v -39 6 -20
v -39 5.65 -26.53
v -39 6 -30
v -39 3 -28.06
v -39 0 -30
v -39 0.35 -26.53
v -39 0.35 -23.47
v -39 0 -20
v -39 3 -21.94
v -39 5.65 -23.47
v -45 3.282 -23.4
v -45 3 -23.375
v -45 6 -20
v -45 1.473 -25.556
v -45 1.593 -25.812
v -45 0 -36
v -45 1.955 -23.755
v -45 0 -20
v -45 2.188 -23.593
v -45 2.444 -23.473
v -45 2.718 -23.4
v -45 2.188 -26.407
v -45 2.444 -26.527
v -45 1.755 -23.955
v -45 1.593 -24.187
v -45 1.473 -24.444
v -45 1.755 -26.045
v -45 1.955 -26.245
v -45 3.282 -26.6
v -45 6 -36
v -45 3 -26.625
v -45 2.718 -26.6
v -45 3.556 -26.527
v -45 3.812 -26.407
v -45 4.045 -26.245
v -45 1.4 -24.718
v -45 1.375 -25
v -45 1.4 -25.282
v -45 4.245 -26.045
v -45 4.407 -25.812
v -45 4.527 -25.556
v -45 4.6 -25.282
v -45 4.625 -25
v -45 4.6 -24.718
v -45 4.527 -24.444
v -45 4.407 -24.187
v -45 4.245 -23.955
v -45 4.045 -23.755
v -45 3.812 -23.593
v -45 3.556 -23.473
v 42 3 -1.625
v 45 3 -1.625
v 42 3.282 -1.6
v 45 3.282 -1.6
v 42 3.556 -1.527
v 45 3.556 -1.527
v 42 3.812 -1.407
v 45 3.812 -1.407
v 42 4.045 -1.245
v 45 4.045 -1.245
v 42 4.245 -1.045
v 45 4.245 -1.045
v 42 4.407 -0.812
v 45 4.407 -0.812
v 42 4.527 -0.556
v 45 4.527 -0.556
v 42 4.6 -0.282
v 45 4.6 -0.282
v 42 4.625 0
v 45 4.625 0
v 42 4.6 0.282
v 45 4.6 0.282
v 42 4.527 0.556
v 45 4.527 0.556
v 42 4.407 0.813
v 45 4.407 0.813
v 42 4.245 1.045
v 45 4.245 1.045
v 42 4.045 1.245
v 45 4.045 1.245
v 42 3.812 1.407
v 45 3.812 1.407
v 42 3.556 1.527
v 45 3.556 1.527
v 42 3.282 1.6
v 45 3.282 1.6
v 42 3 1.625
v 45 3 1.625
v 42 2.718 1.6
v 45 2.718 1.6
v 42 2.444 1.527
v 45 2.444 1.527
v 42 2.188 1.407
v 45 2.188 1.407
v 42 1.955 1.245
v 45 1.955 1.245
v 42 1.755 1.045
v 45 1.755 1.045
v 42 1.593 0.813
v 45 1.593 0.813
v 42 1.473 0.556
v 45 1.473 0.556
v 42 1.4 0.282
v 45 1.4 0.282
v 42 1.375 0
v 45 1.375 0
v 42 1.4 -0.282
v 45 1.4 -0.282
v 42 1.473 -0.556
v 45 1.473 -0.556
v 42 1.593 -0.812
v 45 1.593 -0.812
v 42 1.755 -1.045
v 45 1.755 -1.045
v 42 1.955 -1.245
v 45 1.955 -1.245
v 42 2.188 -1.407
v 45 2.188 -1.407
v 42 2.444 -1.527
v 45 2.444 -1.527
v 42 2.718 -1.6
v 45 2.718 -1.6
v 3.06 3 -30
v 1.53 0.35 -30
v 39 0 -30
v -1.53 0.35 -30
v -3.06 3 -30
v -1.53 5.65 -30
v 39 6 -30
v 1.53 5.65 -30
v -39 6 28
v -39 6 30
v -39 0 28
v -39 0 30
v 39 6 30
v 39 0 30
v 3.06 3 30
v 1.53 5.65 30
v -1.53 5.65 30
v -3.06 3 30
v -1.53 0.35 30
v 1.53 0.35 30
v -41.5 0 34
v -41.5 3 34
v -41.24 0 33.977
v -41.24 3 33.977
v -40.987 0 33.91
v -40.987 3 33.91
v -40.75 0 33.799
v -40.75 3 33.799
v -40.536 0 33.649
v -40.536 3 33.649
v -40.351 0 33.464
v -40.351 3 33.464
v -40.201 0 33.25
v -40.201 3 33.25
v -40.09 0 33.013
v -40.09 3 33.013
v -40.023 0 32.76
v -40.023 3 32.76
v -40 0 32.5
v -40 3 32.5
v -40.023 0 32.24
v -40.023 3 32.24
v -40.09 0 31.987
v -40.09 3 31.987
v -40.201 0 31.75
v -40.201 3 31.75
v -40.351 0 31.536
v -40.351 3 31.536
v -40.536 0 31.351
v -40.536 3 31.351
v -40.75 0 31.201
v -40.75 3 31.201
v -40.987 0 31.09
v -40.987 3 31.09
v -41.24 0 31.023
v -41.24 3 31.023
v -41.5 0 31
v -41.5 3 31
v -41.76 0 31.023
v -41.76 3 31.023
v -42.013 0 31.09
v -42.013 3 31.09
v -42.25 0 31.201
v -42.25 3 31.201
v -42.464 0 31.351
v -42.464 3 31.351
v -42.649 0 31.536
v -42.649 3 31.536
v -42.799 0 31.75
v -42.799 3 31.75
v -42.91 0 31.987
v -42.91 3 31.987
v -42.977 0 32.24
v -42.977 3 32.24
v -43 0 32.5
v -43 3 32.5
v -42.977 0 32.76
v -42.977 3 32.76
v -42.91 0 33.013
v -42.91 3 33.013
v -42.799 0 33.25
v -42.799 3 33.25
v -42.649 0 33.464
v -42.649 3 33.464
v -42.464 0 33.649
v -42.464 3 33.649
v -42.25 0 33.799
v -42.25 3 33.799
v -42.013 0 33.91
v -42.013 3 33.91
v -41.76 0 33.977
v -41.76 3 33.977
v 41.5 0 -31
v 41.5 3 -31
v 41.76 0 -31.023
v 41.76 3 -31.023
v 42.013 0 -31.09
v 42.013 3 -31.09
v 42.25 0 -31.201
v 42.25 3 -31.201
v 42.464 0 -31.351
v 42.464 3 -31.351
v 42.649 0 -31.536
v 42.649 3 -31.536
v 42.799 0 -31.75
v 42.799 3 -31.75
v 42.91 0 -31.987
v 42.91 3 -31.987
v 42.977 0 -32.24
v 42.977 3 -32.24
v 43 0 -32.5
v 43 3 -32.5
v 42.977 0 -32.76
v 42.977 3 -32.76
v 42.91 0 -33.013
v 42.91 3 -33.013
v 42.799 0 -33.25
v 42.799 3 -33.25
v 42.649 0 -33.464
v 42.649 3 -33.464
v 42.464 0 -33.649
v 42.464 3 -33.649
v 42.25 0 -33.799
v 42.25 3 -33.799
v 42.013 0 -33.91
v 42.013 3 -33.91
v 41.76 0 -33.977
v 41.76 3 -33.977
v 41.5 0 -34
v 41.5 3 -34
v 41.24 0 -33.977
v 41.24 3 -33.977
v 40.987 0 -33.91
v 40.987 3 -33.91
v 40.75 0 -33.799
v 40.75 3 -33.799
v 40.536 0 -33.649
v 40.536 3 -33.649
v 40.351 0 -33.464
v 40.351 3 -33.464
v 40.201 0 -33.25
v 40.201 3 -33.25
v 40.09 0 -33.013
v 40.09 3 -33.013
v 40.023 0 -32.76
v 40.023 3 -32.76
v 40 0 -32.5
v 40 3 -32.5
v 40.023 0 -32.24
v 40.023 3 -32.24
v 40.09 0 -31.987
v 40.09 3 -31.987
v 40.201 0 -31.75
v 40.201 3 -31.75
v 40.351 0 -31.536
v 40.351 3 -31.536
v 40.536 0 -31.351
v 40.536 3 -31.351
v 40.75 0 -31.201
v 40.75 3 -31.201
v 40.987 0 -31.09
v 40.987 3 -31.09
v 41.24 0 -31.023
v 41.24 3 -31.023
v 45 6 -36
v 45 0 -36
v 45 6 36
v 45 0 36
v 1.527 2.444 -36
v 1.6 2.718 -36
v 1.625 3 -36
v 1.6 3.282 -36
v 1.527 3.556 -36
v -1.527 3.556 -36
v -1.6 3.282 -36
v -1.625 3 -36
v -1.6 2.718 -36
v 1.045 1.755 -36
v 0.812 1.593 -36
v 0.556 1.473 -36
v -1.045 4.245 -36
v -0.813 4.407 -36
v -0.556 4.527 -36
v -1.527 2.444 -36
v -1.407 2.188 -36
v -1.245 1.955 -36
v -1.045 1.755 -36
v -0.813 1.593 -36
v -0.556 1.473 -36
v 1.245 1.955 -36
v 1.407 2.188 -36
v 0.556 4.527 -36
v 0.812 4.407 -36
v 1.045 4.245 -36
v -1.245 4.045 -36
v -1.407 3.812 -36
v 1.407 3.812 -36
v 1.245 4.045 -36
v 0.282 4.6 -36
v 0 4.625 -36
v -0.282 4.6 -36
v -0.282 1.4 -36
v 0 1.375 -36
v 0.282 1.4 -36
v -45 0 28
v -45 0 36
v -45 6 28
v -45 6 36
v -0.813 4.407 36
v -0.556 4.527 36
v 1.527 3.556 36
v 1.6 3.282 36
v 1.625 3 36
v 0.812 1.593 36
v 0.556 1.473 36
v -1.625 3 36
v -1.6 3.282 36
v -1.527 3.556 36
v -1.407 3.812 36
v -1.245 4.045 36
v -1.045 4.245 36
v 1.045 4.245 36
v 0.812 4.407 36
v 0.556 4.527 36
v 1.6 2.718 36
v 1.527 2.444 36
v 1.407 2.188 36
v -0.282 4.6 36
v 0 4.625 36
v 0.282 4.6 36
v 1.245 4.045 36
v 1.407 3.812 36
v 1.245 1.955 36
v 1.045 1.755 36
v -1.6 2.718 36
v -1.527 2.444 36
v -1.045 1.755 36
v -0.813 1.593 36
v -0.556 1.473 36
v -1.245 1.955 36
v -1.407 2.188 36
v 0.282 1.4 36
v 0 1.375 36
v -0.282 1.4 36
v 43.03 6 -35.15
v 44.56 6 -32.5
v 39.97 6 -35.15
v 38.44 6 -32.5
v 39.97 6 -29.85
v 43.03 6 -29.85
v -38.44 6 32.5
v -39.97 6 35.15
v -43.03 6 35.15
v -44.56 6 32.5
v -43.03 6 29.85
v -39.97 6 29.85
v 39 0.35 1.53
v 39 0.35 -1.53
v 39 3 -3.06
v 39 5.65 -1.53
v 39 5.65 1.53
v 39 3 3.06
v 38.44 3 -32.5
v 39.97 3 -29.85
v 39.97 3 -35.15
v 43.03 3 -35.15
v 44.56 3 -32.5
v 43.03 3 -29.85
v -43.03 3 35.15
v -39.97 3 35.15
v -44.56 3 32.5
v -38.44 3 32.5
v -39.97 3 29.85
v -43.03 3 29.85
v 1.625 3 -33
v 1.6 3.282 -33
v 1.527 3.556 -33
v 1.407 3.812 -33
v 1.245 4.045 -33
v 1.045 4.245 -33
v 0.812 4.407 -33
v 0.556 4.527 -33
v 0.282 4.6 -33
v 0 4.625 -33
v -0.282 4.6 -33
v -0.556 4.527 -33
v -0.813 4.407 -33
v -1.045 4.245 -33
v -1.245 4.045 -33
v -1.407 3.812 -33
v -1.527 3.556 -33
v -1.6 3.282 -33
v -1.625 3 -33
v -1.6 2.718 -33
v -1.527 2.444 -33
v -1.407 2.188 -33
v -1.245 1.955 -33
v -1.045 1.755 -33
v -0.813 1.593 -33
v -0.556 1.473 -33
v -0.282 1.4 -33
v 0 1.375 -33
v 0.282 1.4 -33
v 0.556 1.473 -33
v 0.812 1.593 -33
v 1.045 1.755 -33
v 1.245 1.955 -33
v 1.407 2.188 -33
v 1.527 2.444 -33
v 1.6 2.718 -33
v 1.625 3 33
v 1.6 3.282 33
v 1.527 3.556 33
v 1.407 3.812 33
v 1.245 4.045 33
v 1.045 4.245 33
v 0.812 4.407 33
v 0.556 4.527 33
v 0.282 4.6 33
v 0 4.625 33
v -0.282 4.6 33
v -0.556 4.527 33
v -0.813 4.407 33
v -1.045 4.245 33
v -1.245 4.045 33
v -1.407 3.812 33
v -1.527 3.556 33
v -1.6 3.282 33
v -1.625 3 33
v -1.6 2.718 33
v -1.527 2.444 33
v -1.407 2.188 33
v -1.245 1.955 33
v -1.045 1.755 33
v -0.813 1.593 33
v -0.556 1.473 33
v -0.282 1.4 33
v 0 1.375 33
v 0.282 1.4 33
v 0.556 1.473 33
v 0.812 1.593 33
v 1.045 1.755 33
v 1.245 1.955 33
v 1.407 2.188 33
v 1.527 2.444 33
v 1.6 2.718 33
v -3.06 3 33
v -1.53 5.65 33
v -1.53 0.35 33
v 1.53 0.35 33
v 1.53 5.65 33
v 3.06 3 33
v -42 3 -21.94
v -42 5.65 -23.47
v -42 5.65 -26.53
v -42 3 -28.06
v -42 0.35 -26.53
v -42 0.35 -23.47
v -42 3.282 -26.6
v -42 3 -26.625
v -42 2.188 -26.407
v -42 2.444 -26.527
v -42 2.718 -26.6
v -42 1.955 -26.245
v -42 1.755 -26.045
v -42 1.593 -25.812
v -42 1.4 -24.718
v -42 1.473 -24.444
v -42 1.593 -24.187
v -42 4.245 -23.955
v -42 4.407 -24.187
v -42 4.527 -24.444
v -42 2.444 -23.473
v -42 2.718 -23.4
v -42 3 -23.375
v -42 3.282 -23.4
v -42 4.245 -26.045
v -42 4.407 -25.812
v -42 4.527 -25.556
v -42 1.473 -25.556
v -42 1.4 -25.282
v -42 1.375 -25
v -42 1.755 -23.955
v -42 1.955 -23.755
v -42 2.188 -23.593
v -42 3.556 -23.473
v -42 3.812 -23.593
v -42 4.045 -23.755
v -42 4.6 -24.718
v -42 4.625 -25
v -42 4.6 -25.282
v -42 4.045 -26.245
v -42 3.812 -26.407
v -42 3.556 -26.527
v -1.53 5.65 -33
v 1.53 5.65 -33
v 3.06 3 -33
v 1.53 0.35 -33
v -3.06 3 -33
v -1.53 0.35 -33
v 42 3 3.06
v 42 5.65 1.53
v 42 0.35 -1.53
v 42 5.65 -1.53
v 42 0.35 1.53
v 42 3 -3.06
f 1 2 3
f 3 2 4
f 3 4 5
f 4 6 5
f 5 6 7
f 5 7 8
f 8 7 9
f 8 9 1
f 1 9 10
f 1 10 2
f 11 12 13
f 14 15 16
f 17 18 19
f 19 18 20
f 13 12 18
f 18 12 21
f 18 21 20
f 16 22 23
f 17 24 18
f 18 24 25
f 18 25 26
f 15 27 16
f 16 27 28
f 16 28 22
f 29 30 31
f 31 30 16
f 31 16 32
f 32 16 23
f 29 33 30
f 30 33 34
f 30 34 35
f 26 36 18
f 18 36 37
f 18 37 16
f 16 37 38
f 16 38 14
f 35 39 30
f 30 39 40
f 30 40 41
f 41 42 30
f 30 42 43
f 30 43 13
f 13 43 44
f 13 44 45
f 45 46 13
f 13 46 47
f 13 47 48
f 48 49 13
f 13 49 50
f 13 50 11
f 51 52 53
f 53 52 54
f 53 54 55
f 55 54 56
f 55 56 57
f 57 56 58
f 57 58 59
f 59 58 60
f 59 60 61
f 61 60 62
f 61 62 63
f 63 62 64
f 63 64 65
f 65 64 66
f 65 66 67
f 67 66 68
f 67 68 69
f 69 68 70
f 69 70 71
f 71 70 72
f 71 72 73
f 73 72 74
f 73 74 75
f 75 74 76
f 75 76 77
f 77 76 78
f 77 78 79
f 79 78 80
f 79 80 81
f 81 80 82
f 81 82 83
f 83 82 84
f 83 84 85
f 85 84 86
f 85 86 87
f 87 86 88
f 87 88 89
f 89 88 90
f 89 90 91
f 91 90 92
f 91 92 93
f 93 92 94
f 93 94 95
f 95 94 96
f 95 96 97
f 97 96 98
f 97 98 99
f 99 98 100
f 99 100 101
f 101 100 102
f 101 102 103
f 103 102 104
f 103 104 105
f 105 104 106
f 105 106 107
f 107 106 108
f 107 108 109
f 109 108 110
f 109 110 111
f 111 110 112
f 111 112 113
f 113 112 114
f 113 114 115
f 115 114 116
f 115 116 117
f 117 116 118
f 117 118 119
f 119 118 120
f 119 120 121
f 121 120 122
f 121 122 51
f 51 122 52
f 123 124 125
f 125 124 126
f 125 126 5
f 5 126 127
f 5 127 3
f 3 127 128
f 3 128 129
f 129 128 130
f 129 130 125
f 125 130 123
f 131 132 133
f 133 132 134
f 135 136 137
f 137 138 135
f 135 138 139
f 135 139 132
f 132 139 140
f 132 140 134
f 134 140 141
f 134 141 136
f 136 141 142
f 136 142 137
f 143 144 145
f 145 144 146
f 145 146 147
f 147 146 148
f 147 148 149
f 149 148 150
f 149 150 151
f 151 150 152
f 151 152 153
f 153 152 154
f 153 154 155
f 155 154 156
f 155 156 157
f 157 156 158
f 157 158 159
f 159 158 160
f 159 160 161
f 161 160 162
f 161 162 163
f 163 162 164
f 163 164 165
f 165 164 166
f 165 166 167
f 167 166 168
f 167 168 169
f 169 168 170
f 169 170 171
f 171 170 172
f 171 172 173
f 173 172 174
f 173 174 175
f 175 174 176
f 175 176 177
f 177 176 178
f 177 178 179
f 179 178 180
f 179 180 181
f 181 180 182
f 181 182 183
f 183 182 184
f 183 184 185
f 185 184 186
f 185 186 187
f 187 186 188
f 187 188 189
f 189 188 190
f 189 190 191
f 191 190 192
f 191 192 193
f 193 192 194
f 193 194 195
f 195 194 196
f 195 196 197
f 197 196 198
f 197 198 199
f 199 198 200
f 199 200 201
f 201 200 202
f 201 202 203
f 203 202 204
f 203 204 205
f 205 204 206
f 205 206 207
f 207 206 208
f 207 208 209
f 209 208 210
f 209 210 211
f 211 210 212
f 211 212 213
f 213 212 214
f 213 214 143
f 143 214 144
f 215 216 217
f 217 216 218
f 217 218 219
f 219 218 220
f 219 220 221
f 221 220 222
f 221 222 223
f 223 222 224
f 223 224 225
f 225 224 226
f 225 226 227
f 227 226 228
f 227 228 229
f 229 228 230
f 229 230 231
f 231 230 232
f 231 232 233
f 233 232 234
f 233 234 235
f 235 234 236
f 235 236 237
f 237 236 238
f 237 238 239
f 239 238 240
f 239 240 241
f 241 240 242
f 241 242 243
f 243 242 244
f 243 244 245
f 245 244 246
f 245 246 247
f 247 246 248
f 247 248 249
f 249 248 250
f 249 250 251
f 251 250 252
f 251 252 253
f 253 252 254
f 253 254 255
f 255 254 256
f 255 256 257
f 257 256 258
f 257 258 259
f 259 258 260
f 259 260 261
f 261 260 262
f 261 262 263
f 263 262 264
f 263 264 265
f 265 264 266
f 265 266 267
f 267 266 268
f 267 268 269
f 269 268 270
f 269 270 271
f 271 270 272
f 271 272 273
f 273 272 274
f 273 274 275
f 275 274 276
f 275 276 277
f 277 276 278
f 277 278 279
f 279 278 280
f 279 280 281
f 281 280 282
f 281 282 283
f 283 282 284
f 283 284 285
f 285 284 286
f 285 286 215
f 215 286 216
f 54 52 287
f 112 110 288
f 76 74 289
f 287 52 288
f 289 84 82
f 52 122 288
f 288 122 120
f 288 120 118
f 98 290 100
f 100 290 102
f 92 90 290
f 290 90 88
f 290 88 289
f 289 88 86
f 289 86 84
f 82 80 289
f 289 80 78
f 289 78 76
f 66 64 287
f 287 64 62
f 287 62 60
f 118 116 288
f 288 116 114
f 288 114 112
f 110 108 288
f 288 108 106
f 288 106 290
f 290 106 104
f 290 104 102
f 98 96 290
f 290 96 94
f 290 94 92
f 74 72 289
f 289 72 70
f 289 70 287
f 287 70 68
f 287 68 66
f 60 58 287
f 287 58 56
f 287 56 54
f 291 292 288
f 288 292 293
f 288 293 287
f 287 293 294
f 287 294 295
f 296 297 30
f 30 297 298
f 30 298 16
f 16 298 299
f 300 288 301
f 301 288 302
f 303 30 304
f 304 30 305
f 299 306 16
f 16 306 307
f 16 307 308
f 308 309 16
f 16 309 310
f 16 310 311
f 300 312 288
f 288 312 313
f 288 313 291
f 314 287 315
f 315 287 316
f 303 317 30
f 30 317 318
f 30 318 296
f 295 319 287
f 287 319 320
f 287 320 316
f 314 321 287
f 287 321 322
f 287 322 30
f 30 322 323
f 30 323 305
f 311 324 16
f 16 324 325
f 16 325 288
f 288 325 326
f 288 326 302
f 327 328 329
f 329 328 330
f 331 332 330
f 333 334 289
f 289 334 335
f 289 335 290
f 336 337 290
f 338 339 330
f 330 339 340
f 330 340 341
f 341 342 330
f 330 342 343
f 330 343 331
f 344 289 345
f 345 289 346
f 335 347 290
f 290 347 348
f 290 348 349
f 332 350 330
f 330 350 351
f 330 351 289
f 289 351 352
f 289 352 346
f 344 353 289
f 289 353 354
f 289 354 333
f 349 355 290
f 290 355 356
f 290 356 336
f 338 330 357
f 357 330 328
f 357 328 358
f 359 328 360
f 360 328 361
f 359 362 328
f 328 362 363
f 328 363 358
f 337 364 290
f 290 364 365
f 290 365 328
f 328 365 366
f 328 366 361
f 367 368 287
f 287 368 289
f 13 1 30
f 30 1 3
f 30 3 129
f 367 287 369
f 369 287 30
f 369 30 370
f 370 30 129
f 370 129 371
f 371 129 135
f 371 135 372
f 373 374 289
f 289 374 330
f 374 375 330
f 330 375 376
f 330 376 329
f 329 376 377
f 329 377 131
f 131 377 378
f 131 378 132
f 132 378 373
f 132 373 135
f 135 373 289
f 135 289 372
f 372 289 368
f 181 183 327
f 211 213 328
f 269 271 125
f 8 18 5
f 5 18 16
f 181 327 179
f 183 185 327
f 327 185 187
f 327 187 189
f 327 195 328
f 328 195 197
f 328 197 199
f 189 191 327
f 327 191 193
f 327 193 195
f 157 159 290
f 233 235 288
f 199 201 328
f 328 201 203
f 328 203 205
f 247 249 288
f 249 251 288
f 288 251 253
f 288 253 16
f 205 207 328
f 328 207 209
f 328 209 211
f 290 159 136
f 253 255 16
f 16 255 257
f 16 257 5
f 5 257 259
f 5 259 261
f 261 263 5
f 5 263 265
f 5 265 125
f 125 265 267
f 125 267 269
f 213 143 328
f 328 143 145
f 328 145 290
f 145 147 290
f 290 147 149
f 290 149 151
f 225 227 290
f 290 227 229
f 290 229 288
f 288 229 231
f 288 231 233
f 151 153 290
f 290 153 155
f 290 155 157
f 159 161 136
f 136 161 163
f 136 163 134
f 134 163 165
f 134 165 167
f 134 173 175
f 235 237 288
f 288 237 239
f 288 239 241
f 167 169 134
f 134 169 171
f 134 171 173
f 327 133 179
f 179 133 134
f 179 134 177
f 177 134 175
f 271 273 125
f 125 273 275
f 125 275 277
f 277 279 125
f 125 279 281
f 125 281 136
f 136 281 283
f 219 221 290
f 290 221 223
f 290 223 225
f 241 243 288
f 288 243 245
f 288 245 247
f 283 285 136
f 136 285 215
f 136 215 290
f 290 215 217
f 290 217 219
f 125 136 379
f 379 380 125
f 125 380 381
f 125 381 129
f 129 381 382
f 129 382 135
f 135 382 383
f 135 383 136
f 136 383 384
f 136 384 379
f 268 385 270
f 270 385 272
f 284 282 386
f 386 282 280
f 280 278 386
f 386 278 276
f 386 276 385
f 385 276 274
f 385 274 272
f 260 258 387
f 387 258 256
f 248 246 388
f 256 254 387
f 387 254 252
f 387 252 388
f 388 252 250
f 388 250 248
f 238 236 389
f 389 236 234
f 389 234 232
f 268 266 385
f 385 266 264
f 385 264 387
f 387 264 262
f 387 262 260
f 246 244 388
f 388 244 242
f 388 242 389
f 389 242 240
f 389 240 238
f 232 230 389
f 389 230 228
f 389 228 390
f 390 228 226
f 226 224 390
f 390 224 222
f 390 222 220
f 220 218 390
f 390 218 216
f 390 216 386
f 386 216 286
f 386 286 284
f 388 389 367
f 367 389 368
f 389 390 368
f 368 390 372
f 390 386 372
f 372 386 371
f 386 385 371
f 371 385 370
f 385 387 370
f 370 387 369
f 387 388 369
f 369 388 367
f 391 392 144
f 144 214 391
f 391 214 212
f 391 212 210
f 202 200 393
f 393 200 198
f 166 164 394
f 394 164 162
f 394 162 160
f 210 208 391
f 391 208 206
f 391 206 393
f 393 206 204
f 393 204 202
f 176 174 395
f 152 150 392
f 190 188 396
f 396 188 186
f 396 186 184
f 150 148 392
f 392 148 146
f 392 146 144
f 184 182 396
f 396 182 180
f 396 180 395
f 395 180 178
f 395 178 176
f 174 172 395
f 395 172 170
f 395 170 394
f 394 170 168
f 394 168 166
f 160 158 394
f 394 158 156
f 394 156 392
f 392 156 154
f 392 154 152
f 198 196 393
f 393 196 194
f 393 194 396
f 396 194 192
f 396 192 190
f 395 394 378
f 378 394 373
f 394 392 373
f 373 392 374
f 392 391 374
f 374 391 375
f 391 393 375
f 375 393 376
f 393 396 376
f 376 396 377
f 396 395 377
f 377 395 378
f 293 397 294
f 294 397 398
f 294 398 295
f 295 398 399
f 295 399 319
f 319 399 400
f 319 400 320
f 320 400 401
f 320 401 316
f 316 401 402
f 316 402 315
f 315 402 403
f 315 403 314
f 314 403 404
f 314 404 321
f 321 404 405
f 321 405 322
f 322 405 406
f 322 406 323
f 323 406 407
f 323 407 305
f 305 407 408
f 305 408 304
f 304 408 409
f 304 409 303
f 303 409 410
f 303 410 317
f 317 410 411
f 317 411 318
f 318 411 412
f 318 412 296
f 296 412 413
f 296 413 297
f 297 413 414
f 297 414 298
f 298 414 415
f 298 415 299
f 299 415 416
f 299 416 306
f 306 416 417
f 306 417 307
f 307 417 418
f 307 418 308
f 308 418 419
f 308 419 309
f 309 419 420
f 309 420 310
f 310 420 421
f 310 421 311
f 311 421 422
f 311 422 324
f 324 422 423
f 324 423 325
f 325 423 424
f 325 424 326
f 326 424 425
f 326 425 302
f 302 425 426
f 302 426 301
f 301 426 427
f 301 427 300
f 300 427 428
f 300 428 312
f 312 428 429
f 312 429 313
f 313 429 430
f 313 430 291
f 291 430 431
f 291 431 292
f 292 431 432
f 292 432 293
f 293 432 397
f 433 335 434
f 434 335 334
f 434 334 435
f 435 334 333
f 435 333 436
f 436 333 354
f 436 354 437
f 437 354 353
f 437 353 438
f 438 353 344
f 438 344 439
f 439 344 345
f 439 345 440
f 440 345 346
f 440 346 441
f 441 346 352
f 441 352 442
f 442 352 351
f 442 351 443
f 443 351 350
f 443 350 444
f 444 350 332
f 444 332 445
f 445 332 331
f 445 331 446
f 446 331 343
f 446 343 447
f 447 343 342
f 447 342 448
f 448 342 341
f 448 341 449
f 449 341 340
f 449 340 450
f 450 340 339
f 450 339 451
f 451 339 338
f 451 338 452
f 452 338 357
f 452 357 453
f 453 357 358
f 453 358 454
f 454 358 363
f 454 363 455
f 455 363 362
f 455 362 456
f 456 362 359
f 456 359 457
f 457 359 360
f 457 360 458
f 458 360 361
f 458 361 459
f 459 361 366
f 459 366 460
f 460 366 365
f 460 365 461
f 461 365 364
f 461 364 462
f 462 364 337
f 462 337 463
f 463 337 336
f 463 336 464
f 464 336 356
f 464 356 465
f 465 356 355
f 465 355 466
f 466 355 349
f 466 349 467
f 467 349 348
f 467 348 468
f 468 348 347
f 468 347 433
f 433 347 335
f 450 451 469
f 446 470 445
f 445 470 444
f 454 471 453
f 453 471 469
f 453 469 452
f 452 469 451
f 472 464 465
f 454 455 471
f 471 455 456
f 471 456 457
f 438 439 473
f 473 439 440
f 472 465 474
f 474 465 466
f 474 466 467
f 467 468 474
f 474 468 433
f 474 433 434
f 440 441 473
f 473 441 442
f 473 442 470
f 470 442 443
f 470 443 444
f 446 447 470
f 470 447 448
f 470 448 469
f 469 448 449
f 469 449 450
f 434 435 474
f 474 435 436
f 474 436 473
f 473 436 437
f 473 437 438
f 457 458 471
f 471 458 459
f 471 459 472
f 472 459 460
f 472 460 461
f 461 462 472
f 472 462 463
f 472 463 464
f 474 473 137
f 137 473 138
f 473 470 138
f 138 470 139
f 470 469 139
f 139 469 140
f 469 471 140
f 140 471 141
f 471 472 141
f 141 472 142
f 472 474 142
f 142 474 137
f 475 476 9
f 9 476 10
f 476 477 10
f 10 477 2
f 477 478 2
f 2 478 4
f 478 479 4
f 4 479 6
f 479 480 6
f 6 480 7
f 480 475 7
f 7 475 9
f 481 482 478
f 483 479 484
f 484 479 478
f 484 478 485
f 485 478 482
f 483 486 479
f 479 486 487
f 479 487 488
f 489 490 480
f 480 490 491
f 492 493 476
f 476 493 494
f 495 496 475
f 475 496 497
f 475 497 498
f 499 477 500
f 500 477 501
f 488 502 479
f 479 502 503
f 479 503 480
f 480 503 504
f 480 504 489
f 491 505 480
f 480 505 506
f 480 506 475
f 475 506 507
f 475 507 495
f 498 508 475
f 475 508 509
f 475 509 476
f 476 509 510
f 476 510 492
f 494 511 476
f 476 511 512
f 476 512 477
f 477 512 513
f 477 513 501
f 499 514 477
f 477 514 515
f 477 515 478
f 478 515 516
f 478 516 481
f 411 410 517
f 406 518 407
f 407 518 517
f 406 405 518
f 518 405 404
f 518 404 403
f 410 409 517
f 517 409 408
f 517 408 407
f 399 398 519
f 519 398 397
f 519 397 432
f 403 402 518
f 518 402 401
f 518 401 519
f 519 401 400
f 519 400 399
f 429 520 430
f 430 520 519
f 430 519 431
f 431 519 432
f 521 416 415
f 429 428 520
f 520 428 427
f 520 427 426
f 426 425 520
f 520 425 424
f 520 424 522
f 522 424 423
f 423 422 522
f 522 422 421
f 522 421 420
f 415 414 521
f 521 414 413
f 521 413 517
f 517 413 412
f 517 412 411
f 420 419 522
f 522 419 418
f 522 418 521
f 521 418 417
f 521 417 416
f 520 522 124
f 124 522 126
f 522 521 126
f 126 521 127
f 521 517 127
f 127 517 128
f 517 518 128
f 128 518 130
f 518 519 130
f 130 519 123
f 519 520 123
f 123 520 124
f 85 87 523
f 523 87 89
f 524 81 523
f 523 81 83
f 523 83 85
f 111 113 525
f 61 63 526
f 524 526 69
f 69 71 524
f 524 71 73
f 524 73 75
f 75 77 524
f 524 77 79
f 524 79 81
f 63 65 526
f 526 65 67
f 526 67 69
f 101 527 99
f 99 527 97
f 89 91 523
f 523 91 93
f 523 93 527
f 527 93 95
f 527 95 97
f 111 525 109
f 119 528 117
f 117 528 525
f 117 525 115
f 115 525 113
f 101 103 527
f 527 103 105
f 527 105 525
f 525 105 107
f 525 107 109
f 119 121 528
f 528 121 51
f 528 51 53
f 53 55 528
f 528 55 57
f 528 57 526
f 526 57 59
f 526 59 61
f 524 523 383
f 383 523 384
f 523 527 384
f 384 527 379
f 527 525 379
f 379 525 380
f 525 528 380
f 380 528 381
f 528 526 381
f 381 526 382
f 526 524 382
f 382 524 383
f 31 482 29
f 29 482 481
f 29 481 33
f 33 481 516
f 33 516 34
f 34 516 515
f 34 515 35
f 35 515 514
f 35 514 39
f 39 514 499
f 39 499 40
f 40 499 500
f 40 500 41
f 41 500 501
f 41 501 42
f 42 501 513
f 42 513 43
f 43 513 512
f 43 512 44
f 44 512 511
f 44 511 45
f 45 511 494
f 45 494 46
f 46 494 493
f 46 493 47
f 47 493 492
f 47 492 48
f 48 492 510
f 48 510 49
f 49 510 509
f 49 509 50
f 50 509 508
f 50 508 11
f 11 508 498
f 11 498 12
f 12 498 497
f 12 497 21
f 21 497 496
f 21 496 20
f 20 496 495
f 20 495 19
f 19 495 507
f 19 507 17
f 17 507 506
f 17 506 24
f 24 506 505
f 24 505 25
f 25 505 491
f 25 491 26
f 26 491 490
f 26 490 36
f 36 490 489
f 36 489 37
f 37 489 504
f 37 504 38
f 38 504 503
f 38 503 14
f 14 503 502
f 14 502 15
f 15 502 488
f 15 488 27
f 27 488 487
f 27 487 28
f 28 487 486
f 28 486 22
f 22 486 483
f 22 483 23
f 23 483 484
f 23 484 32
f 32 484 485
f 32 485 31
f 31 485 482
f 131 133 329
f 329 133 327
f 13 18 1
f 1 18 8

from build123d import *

# Parameters (mm, degrees)
CROQUIS1_W              = 90
CROQUIS1_H              = 72
SALIENTE_EXTRUIR1_DEPTH = 6
CROQUIS2_R              = 1.5
CROQUIS2_W              = 78
CROQUIS2_H              = 60
CORTAR_EXTRUIR1_DEPTH   = 58.939623747
CORTAR_EXTRUIR2_DEPTH   = 3
CROQUIS4_R              = 1.625
CORTAR_EXTRUIR3_DEPTH   = 86.117565755
CORTAR_EXTRUIR4_REACH   = 99.118
CROQUIS5_R              = 1.625
CORTAR_EXTRUIR5_START   = -6
CROQUIS6_OUTSIDE_W      = 115.082
CROQUIS6_OUTSIDE_H      = 31.082
CROQUIS6_OUTSIDE_W_2    = 90
CROQUIS6_OUTSIDE_H_2    = 6
CORTAR_EXTRUIR5_DEPTH   = 3
CORTAR_EXTRUIR6_START   = -6
CORTAR_EXTRUIR6_DEPTH   = 3
CORTAR_EXTRUIR8_START   = -66
CROQUIS6_2_OUTSIDE_W    = 115.082
CROQUIS6_2_OUTSIDE_H    = 31.082
CROQUIS6_2_OUTSIDE_W_2  = 90
CROQUIS6_2_OUTSIDE_H_2  = 6
CORTAR_EXTRUIR8_DEPTH   = 3
CORTAR_EXTRUIR9_DEPTH   = 3
CORTAR_EXTRUIR10_REACH  = 93.586
CROQUIS10_R             = 1.625
CORTAR_EXTRUIR12_REACH  = 59.94
CROQUIS11_W             = 6
CROQUIS11_H             = 48


with BuildPart() as part:
    # Croquis1 → Saliente-Extruir1 (new body)
    with BuildSketch(Plane(origin=(0, 0, 0), x_dir=(1, 0, 0), z_dir=(0, 1, 0))):
        Rectangle(CROQUIS1_W, CROQUIS1_H)
    extrude(amount=SALIENTE_EXTRUIR1_DEPTH)

    # Croquis2 → Cortar-Extruir1 (cut, through all)
    with BuildSketch(Plane(origin=(0, 6, 0), x_dir=(1, 0, 0), z_dir=(0, 1, 0))):
        with Locations(Location((-41.5, -32.5, 0), (0, 0, 270))):
            Circle(CROQUIS2_R)
        with Locations(Location((41.5, 32.5, 0), (0, 0, 270))):
            Circle(CROQUIS2_R)
        Rectangle(CROQUIS2_W, CROQUIS2_H)
    extrude(amount=-CORTAR_EXTRUIR1_DEPTH, mode=Mode.SUBTRACT)

    # Croquis3 → Cortar-Extruir2 (cut)
    with BuildSketch(Plane(origin=(0, 6, 0), x_dir=(1, 0, 0), z_dir=(0, 1, 0))):
        Polygon((-39.970021787, -29.85), (-43.029978213, -29.85), (-44.559956427, -32.5), (-43.029978213, -35.15), (-39.970021787, -35.15), (-38.440043573, -32.5), align=None)
        Polygon((43.029978213, 35.15), (39.970021787, 35.15), (38.440043573, 32.5), (39.970021787, 29.85), (43.029978213, 29.85), (44.559956427, 32.5), align=None)
    extrude(amount=-CORTAR_EXTRUIR2_DEPTH, mode=Mode.SUBTRACT)

    # Croquis4 → Cortar-Extruir3 (cut, through all)
    with BuildSketch(Plane.XY.offset(36)):
        with Locations((0, 3)):
            Circle(CROQUIS4_R)
    extrude(amount=-CORTAR_EXTRUIR3_DEPTH, mode=Mode.SUBTRACT)

    # Croquis5 → Cortar-Extruir4 (cut, up to next)
    with BuildSketch(Plane(origin=(45, 0, 0), x_dir=(0, 0, -1), z_dir=(1, 0, 0)), mode=Mode.PRIVATE) as cortar_extruir4_sk1:
        with Locations((0, 3)):
            Circle(CROQUIS5_R)
    cortar_extruir4_tool1 = extrude(cortar_extruir4_sk1.sketch, amount=-CORTAR_EXTRUIR4_REACH, mode=Mode.PRIVATE) & part.part
    add(cortar_extruir4_tool1.solids().sort_by_distance((45, 3, 0))[0], mode=Mode.SUBTRACT)

    # Croquis6 outside → Cortar-Extruir5 (cut)
    # profile 1 of 2: a face of its own
    with BuildSketch(Plane.XY.offset(36).offset(CORTAR_EXTRUIR5_START)):
        with Locations((0, 3)):
            Rectangle(CROQUIS6_OUTSIDE_W, CROQUIS6_OUTSIDE_H)
        with Locations((0, 3)):
            Rectangle(CROQUIS6_OUTSIDE_W_2, CROQUIS6_OUTSIDE_H_2, mode=Mode.SUBTRACT)
    # profile 2 of 2: a face of its own
    with BuildSketch(Plane.XY.offset(36).offset(CORTAR_EXTRUIR5_START)):
        Polygon((1.529978213, 5.65), (-1.529978213, 5.65), (-3.059956427, 3), (-1.529978213, 0.35), (1.529978213, 0.35), (3.059956427, 3), align=None)
    extrude(amount=CORTAR_EXTRUIR5_DEPTH, mode=Mode.SUBTRACT)

    # Croquis8 → Cortar-Extruir6 (cut)
    with BuildSketch(Plane.ZY.offset(45).offset(CORTAR_EXTRUIR6_START)):
        Polygon((-23.470021787, 5.65), (-26.529978213, 5.65), (-28.059956427, 3), (-26.529978213, 0.35), (-23.470021787, 0.35), (-21.940043573, 3), align=None)
    extrude(amount=CORTAR_EXTRUIR6_DEPTH, mode=Mode.SUBTRACT)

    # Croquis6<2> outside → Cortar-Extruir8 (cut)
    # profile 1 of 2: a face of its own
    with BuildSketch(Plane.XY.offset(36).offset(CORTAR_EXTRUIR8_START)):
        with Locations((0, 3)):
            Rectangle(CROQUIS6_2_OUTSIDE_W, CROQUIS6_2_OUTSIDE_H)
        with Locations((0, 3)):
            Rectangle(CROQUIS6_2_OUTSIDE_W_2, CROQUIS6_2_OUTSIDE_H_2, mode=Mode.SUBTRACT)
    # profile 2 of 2: a face of its own
    with BuildSketch(Plane.XY.offset(36).offset(CORTAR_EXTRUIR8_START)):
        Polygon((1.529978213, 5.65), (-1.529978213, 5.65), (-3.059956427, 3), (-1.529978213, 0.35), (1.529978213, 0.35), (3.059956427, 3), align=None)
    extrude(amount=-CORTAR_EXTRUIR8_DEPTH, mode=Mode.SUBTRACT)

    # Croquis9 → Cortar-Extruir9 (cut)
    with BuildSketch(Plane.ZY.offset(-39)):
        Polygon((1.529978213, 5.65), (-1.529978213, 5.65), (-3.059956427, 3), (-1.529978213, 0.35), (1.529978213, 0.35), (3.059956427, 3), align=None)
    extrude(amount=-CORTAR_EXTRUIR9_DEPTH, mode=Mode.SUBTRACT)

    # Croquis10 → Cortar-Extruir10 (cut, up to next)
    with BuildSketch(Plane(origin=(-39, 0, 0), x_dir=(0, 0, -1), z_dir=(1, 0, 0)), mode=Mode.PRIVATE) as cortar_extruir10_sk1:
        with Locations((25, 3)):
            Circle(CROQUIS10_R)
    cortar_extruir10_tool1 = extrude(cortar_extruir10_sk1.sketch, amount=-CORTAR_EXTRUIR10_REACH, mode=Mode.PRIVATE) & part.part
    add(cortar_extruir10_tool1.solids().sort_by_distance((-39, 3, -25))[0], mode=Mode.SUBTRACT)

    # Croquis11 → Cortar-Extruir12 (cut, up to next)
    with BuildSketch(Plane(origin=(0, 6, 0), x_dir=(1, 0, 0), z_dir=(0, 1, 0)), mode=Mode.PRIVATE) as cortar_extruir12_sk1:
        with Locations((-42, -4)):
            Rectangle(CROQUIS11_W, CROQUIS11_H)
    cortar_extruir12_tool1 = extrude(cortar_extruir12_sk1.sketch, amount=-CORTAR_EXTRUIR12_REACH, mode=Mode.PRIVATE) & part.part
    add(cortar_extruir12_tool1.solids().sort_by_distance((-42, 6, 4))[0], mode=Mode.SUBTRACT)


solid = part.part
